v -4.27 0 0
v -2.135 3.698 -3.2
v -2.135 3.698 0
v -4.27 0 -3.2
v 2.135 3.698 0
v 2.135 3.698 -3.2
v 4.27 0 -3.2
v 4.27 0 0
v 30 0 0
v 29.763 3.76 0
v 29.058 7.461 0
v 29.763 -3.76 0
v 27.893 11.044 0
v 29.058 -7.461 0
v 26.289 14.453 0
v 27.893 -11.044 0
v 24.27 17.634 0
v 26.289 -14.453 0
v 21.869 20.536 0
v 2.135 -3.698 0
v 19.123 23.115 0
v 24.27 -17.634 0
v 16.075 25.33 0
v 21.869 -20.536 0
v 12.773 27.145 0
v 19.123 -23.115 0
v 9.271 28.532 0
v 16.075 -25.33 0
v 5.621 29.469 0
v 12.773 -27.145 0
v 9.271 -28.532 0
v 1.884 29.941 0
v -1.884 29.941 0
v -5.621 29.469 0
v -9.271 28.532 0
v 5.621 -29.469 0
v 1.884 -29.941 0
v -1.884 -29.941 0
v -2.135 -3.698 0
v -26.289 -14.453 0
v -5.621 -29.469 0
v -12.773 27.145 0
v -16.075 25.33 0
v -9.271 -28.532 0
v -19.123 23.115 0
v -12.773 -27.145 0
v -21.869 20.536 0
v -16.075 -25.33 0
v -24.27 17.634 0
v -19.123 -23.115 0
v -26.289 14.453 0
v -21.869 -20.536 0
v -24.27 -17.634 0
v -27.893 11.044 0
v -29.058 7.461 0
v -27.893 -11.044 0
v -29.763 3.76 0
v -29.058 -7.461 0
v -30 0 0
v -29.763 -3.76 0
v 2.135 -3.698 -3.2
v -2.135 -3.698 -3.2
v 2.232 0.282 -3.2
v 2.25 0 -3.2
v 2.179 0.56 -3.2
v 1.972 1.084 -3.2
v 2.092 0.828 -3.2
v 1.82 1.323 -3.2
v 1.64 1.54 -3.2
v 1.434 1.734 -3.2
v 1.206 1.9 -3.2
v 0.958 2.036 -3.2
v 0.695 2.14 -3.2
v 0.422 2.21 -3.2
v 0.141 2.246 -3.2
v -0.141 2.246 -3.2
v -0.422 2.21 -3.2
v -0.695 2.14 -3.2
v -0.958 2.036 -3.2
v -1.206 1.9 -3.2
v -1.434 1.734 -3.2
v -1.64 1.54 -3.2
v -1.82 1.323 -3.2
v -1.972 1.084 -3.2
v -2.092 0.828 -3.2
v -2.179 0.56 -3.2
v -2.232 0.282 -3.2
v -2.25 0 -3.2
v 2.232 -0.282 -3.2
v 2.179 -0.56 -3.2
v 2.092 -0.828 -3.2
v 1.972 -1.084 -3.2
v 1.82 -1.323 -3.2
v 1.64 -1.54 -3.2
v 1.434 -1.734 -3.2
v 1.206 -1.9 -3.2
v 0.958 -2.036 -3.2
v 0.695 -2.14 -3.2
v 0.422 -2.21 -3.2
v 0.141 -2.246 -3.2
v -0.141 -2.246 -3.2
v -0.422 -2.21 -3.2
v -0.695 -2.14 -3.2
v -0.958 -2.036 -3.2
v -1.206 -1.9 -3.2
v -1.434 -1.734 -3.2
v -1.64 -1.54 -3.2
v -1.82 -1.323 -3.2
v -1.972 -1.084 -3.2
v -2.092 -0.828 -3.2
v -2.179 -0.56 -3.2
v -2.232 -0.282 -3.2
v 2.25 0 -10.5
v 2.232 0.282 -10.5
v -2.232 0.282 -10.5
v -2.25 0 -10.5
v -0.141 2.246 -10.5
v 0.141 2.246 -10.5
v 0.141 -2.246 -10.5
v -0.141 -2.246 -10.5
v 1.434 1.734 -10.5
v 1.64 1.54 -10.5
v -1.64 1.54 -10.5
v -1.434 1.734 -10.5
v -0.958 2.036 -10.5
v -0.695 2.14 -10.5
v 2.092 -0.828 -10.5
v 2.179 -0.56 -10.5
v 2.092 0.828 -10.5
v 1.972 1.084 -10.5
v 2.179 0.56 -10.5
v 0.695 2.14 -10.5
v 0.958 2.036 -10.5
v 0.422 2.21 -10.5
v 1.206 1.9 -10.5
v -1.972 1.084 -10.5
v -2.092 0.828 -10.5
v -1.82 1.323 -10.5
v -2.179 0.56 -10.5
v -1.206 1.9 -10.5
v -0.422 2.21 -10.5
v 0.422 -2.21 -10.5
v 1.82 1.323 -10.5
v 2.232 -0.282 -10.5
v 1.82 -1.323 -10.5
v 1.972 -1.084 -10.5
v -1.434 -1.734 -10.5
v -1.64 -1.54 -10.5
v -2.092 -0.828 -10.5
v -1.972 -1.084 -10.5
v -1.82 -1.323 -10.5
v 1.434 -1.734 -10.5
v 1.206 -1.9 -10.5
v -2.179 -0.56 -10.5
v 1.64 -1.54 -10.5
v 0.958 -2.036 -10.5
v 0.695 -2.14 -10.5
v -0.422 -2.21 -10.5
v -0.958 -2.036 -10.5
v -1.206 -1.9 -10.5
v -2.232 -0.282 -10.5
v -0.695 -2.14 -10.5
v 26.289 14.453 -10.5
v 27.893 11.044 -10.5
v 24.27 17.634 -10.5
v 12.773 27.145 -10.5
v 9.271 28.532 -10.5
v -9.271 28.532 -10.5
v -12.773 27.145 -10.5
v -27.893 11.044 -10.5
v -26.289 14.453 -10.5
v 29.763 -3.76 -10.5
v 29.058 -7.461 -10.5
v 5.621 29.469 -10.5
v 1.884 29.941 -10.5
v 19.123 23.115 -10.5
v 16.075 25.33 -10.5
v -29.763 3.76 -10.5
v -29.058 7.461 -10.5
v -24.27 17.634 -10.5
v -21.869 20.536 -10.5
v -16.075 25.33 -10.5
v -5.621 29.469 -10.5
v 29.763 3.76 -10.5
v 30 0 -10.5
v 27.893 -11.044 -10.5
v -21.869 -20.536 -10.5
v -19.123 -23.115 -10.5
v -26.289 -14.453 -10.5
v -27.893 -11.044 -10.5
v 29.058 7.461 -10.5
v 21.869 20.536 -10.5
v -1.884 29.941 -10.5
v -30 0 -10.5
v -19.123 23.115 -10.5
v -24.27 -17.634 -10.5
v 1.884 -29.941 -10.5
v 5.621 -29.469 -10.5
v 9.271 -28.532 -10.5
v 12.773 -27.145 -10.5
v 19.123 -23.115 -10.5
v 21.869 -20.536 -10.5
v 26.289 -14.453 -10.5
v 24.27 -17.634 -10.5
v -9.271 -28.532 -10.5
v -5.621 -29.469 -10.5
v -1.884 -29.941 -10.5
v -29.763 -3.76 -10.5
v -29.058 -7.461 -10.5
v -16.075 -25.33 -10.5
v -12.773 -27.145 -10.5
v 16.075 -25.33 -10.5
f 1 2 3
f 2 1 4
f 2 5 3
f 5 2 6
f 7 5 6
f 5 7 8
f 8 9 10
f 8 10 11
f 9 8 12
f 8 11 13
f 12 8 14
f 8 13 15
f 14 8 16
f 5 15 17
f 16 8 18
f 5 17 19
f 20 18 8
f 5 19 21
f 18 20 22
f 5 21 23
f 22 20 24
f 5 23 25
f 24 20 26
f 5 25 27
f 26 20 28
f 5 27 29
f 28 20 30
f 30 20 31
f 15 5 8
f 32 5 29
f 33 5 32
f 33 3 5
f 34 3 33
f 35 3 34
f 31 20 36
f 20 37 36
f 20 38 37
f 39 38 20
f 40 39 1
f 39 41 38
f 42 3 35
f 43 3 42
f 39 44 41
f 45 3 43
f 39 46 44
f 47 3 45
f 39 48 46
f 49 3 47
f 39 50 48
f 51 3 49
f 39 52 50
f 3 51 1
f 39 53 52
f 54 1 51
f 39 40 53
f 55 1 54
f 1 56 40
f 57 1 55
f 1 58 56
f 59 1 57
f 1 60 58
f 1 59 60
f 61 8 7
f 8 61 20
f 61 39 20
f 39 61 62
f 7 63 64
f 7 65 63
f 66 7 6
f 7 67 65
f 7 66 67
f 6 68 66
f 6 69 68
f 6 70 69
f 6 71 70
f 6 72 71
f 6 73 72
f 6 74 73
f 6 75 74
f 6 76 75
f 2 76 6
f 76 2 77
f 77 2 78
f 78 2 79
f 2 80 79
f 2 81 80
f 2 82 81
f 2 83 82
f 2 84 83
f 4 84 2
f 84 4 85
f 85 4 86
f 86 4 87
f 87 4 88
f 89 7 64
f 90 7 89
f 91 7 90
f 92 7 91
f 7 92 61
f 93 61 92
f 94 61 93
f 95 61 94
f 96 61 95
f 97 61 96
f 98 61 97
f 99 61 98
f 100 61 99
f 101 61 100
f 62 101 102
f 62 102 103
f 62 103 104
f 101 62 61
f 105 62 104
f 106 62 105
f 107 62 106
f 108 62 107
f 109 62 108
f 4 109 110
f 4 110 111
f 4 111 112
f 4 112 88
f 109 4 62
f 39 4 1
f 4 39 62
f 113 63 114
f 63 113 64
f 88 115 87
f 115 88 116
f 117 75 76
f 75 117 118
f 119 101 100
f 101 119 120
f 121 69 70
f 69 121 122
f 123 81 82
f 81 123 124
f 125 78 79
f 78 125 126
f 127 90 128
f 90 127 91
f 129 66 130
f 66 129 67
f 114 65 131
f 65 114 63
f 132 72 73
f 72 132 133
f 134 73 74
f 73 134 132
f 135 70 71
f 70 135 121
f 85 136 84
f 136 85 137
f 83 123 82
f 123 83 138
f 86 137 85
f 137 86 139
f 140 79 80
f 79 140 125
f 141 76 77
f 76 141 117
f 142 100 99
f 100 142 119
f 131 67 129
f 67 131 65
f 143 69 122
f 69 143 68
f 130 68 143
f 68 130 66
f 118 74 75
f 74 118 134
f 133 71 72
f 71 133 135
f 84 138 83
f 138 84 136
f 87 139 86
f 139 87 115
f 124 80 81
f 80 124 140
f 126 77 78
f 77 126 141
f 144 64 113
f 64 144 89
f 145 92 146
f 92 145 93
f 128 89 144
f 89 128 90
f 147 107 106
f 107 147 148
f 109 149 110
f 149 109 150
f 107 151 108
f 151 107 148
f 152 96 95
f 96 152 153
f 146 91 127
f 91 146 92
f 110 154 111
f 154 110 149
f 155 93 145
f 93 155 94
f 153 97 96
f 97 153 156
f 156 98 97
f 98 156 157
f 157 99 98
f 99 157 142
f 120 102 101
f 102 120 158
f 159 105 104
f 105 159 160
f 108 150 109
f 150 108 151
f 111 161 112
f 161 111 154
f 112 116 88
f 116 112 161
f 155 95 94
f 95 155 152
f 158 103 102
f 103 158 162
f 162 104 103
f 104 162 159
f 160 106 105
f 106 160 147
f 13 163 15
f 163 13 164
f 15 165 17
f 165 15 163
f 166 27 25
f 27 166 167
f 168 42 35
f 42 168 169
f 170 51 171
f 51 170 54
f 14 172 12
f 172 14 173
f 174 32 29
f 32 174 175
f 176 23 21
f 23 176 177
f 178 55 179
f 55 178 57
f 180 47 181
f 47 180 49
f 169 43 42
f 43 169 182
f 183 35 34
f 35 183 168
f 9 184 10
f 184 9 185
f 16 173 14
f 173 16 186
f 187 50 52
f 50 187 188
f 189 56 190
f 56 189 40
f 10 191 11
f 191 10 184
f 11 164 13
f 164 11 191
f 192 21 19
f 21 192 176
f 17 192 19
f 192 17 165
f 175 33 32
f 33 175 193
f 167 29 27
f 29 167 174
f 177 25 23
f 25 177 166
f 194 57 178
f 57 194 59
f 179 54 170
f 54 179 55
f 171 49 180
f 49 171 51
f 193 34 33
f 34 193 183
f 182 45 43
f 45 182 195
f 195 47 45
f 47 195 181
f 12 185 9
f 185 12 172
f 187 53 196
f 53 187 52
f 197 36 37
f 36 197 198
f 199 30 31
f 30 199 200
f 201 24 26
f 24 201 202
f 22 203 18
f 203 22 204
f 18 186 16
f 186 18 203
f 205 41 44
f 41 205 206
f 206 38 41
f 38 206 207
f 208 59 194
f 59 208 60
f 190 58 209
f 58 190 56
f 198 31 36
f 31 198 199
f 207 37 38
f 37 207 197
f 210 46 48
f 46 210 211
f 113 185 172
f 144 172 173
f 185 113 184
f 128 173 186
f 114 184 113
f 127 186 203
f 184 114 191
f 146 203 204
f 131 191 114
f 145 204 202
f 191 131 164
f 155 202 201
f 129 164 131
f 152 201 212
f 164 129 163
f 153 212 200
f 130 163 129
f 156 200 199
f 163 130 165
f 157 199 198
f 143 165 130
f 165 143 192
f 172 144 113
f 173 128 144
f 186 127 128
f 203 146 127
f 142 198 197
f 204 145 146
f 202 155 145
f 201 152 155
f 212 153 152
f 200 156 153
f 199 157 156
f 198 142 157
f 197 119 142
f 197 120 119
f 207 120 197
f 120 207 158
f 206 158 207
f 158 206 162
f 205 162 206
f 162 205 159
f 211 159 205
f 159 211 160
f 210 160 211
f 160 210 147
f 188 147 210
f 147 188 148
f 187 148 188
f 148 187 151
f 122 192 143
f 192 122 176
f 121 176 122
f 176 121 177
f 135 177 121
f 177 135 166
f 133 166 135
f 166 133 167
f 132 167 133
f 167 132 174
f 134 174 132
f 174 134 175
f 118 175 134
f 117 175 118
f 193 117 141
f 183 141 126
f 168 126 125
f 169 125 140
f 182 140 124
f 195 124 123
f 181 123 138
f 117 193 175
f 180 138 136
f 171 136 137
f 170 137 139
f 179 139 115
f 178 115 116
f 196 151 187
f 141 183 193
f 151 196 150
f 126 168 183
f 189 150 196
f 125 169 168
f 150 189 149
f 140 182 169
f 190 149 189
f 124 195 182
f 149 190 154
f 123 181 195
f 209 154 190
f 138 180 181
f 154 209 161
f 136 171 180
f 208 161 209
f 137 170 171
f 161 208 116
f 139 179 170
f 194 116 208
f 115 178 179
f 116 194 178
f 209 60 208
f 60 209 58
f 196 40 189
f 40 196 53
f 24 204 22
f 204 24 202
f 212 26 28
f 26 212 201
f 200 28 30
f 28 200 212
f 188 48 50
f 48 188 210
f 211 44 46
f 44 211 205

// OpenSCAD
$fn = 50;


difference() {
	union() {
		translate(v = [0, 0, -10.5000000000]) {
			cylinder(h = 10.5000000000, r = 30.0000000000);
		}
	}
	union() {
		translate(v = [0, 0, 0]) {
			rotate(a = [0, 0, 0]) {
				difference() {
					union() {
						translate(v = [0, 0, -3.2000000000]) {
							linear_extrude(height = 3.2000000000) {
								polygon(points = [[4.2698000000, 0.0000000000], [2.1349000000, 3.6977552691], [-2.1349000000, 3.6977552691], [-4.2698000000, 0.0000000000], [-2.1349000000, -3.6977552691], [2.1349000000, -3.6977552691]]);
							}
						}
					}
					union();
				}
			}
		}
		#translate(v = [0, 0, -100.0000000000]) {
			cylinder(h = 200, r = 2.2500000000);
		}
	}
}
